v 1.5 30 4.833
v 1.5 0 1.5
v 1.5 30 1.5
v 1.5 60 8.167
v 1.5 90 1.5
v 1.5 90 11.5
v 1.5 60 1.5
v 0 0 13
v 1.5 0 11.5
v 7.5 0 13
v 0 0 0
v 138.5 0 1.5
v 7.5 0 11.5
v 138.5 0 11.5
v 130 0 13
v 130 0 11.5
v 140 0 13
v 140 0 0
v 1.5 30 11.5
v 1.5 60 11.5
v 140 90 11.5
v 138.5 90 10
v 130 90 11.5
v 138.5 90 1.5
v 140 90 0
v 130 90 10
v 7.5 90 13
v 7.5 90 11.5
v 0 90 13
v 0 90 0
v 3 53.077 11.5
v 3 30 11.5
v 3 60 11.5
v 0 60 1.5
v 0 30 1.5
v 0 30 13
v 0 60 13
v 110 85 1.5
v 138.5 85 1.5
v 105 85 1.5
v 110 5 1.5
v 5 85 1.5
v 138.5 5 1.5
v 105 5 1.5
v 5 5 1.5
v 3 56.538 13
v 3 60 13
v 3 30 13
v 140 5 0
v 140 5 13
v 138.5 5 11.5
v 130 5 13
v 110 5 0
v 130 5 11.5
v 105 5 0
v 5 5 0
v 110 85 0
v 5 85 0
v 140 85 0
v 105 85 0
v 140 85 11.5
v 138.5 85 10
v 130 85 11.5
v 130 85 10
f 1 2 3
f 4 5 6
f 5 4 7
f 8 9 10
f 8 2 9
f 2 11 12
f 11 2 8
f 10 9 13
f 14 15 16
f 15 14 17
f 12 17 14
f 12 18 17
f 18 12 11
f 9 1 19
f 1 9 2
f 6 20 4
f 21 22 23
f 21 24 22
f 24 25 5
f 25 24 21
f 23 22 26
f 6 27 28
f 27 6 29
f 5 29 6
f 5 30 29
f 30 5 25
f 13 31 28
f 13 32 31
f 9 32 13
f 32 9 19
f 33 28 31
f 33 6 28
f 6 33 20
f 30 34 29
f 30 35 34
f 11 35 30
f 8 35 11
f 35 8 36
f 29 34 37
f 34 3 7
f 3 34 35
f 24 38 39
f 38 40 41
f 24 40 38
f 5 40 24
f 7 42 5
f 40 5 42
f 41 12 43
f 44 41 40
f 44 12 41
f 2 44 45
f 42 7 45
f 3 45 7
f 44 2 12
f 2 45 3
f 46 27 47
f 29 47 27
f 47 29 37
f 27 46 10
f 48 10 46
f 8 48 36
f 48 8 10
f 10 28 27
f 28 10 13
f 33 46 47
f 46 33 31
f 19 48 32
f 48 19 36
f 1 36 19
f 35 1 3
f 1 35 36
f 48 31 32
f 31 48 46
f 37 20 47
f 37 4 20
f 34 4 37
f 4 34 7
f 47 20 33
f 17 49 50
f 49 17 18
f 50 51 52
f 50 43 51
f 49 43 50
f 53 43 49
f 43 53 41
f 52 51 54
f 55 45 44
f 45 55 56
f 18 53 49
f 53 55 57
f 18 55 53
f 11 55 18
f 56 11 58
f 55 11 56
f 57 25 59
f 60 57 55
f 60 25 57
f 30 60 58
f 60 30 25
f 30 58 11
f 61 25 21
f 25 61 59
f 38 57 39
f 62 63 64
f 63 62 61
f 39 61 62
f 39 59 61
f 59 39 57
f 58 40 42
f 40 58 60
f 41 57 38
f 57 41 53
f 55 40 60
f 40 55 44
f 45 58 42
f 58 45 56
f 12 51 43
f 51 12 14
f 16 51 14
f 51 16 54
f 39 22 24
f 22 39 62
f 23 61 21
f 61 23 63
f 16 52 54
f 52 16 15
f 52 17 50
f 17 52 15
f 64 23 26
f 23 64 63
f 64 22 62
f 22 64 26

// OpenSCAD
phoneFrontCameraAreaHeight = 15;
phoneWidth = 80;
phoneHeight = 155;
dockThickness = 1.5;
dockHeight = phoneHeight - phoneFrontCameraAreaHeight;
dockBandWidth = 5;
dockWidth = phoneWidth + (2 * dockBandWidth);
dockBaseLipWidth = dockBandWidth * 1.5;
dockBaseWidth = 2 * dockBandWidth;
usbOpeningWidth = 30;
usbOpeningStart = (dockWidth - usbOpeningWidth) / 2;
dockStrapGap = phoneWidth + dockBandWidth;
dockSupportHeight = 110;

module singleStrap(length, width = dockBandWidth, thickness = dockThickness) {
    cube([length, width, thickness]);
}

module dockBase(width) {
    rotate([90, 0, 90]) singleStrap(width, width = 2 * dockBandWidth);
}

module usbOpening(width=usbOpeningWidth) {
    thickerBy = 3;
    rotate([90, 0, 90]) singleStrap(length = width, width = dockBaseWidth + 2 * dockThickness, thickness = dockThickness * thickerBy);
}


singleStrap(dockHeight);
translate([0, dockStrapGap, 0]) singleStrap(dockHeight);
rotate([0, 0, 90]) translate([0, -dockSupportHeight, 0]) singleStrap(dockWidth);

//base
rotate([0, 0, 90]) translate([0, -dockBandWidth, 0]) singleStrap(dockWidth);
difference() {
    
union() {
translate([0, 0, dockThickness]) dockBase(width=dockWidth);
rotate([0, 0, 90]) translate([0, -dockBaseLipWidth, dockBaseWidth + dockThickness]) singleStrap(dockWidth, width = dockBaseLipWidth);
}
    translate([0, 0, dockThickness]) translate([-dockThickness, usbOpeningStart, 0]) usbOpening();
}
//hook
translate([dockHeight - dockThickness, 0, dockThickness]) dockBase(dockBandWidth);
translate([dockHeight - dockThickness, dockStrapGap, dockThickness]) dockBase(dockBandWidth);
translate([dockHeight-dockBandWidth*2, 0, dockBaseWidth + dockThickness]) singleStrap(dockBaseWidth);
translate([dockHeight-dockBandWidth*2, dockStrapGap, dockBaseWidth]) singleStrap(dockBaseWidth);
